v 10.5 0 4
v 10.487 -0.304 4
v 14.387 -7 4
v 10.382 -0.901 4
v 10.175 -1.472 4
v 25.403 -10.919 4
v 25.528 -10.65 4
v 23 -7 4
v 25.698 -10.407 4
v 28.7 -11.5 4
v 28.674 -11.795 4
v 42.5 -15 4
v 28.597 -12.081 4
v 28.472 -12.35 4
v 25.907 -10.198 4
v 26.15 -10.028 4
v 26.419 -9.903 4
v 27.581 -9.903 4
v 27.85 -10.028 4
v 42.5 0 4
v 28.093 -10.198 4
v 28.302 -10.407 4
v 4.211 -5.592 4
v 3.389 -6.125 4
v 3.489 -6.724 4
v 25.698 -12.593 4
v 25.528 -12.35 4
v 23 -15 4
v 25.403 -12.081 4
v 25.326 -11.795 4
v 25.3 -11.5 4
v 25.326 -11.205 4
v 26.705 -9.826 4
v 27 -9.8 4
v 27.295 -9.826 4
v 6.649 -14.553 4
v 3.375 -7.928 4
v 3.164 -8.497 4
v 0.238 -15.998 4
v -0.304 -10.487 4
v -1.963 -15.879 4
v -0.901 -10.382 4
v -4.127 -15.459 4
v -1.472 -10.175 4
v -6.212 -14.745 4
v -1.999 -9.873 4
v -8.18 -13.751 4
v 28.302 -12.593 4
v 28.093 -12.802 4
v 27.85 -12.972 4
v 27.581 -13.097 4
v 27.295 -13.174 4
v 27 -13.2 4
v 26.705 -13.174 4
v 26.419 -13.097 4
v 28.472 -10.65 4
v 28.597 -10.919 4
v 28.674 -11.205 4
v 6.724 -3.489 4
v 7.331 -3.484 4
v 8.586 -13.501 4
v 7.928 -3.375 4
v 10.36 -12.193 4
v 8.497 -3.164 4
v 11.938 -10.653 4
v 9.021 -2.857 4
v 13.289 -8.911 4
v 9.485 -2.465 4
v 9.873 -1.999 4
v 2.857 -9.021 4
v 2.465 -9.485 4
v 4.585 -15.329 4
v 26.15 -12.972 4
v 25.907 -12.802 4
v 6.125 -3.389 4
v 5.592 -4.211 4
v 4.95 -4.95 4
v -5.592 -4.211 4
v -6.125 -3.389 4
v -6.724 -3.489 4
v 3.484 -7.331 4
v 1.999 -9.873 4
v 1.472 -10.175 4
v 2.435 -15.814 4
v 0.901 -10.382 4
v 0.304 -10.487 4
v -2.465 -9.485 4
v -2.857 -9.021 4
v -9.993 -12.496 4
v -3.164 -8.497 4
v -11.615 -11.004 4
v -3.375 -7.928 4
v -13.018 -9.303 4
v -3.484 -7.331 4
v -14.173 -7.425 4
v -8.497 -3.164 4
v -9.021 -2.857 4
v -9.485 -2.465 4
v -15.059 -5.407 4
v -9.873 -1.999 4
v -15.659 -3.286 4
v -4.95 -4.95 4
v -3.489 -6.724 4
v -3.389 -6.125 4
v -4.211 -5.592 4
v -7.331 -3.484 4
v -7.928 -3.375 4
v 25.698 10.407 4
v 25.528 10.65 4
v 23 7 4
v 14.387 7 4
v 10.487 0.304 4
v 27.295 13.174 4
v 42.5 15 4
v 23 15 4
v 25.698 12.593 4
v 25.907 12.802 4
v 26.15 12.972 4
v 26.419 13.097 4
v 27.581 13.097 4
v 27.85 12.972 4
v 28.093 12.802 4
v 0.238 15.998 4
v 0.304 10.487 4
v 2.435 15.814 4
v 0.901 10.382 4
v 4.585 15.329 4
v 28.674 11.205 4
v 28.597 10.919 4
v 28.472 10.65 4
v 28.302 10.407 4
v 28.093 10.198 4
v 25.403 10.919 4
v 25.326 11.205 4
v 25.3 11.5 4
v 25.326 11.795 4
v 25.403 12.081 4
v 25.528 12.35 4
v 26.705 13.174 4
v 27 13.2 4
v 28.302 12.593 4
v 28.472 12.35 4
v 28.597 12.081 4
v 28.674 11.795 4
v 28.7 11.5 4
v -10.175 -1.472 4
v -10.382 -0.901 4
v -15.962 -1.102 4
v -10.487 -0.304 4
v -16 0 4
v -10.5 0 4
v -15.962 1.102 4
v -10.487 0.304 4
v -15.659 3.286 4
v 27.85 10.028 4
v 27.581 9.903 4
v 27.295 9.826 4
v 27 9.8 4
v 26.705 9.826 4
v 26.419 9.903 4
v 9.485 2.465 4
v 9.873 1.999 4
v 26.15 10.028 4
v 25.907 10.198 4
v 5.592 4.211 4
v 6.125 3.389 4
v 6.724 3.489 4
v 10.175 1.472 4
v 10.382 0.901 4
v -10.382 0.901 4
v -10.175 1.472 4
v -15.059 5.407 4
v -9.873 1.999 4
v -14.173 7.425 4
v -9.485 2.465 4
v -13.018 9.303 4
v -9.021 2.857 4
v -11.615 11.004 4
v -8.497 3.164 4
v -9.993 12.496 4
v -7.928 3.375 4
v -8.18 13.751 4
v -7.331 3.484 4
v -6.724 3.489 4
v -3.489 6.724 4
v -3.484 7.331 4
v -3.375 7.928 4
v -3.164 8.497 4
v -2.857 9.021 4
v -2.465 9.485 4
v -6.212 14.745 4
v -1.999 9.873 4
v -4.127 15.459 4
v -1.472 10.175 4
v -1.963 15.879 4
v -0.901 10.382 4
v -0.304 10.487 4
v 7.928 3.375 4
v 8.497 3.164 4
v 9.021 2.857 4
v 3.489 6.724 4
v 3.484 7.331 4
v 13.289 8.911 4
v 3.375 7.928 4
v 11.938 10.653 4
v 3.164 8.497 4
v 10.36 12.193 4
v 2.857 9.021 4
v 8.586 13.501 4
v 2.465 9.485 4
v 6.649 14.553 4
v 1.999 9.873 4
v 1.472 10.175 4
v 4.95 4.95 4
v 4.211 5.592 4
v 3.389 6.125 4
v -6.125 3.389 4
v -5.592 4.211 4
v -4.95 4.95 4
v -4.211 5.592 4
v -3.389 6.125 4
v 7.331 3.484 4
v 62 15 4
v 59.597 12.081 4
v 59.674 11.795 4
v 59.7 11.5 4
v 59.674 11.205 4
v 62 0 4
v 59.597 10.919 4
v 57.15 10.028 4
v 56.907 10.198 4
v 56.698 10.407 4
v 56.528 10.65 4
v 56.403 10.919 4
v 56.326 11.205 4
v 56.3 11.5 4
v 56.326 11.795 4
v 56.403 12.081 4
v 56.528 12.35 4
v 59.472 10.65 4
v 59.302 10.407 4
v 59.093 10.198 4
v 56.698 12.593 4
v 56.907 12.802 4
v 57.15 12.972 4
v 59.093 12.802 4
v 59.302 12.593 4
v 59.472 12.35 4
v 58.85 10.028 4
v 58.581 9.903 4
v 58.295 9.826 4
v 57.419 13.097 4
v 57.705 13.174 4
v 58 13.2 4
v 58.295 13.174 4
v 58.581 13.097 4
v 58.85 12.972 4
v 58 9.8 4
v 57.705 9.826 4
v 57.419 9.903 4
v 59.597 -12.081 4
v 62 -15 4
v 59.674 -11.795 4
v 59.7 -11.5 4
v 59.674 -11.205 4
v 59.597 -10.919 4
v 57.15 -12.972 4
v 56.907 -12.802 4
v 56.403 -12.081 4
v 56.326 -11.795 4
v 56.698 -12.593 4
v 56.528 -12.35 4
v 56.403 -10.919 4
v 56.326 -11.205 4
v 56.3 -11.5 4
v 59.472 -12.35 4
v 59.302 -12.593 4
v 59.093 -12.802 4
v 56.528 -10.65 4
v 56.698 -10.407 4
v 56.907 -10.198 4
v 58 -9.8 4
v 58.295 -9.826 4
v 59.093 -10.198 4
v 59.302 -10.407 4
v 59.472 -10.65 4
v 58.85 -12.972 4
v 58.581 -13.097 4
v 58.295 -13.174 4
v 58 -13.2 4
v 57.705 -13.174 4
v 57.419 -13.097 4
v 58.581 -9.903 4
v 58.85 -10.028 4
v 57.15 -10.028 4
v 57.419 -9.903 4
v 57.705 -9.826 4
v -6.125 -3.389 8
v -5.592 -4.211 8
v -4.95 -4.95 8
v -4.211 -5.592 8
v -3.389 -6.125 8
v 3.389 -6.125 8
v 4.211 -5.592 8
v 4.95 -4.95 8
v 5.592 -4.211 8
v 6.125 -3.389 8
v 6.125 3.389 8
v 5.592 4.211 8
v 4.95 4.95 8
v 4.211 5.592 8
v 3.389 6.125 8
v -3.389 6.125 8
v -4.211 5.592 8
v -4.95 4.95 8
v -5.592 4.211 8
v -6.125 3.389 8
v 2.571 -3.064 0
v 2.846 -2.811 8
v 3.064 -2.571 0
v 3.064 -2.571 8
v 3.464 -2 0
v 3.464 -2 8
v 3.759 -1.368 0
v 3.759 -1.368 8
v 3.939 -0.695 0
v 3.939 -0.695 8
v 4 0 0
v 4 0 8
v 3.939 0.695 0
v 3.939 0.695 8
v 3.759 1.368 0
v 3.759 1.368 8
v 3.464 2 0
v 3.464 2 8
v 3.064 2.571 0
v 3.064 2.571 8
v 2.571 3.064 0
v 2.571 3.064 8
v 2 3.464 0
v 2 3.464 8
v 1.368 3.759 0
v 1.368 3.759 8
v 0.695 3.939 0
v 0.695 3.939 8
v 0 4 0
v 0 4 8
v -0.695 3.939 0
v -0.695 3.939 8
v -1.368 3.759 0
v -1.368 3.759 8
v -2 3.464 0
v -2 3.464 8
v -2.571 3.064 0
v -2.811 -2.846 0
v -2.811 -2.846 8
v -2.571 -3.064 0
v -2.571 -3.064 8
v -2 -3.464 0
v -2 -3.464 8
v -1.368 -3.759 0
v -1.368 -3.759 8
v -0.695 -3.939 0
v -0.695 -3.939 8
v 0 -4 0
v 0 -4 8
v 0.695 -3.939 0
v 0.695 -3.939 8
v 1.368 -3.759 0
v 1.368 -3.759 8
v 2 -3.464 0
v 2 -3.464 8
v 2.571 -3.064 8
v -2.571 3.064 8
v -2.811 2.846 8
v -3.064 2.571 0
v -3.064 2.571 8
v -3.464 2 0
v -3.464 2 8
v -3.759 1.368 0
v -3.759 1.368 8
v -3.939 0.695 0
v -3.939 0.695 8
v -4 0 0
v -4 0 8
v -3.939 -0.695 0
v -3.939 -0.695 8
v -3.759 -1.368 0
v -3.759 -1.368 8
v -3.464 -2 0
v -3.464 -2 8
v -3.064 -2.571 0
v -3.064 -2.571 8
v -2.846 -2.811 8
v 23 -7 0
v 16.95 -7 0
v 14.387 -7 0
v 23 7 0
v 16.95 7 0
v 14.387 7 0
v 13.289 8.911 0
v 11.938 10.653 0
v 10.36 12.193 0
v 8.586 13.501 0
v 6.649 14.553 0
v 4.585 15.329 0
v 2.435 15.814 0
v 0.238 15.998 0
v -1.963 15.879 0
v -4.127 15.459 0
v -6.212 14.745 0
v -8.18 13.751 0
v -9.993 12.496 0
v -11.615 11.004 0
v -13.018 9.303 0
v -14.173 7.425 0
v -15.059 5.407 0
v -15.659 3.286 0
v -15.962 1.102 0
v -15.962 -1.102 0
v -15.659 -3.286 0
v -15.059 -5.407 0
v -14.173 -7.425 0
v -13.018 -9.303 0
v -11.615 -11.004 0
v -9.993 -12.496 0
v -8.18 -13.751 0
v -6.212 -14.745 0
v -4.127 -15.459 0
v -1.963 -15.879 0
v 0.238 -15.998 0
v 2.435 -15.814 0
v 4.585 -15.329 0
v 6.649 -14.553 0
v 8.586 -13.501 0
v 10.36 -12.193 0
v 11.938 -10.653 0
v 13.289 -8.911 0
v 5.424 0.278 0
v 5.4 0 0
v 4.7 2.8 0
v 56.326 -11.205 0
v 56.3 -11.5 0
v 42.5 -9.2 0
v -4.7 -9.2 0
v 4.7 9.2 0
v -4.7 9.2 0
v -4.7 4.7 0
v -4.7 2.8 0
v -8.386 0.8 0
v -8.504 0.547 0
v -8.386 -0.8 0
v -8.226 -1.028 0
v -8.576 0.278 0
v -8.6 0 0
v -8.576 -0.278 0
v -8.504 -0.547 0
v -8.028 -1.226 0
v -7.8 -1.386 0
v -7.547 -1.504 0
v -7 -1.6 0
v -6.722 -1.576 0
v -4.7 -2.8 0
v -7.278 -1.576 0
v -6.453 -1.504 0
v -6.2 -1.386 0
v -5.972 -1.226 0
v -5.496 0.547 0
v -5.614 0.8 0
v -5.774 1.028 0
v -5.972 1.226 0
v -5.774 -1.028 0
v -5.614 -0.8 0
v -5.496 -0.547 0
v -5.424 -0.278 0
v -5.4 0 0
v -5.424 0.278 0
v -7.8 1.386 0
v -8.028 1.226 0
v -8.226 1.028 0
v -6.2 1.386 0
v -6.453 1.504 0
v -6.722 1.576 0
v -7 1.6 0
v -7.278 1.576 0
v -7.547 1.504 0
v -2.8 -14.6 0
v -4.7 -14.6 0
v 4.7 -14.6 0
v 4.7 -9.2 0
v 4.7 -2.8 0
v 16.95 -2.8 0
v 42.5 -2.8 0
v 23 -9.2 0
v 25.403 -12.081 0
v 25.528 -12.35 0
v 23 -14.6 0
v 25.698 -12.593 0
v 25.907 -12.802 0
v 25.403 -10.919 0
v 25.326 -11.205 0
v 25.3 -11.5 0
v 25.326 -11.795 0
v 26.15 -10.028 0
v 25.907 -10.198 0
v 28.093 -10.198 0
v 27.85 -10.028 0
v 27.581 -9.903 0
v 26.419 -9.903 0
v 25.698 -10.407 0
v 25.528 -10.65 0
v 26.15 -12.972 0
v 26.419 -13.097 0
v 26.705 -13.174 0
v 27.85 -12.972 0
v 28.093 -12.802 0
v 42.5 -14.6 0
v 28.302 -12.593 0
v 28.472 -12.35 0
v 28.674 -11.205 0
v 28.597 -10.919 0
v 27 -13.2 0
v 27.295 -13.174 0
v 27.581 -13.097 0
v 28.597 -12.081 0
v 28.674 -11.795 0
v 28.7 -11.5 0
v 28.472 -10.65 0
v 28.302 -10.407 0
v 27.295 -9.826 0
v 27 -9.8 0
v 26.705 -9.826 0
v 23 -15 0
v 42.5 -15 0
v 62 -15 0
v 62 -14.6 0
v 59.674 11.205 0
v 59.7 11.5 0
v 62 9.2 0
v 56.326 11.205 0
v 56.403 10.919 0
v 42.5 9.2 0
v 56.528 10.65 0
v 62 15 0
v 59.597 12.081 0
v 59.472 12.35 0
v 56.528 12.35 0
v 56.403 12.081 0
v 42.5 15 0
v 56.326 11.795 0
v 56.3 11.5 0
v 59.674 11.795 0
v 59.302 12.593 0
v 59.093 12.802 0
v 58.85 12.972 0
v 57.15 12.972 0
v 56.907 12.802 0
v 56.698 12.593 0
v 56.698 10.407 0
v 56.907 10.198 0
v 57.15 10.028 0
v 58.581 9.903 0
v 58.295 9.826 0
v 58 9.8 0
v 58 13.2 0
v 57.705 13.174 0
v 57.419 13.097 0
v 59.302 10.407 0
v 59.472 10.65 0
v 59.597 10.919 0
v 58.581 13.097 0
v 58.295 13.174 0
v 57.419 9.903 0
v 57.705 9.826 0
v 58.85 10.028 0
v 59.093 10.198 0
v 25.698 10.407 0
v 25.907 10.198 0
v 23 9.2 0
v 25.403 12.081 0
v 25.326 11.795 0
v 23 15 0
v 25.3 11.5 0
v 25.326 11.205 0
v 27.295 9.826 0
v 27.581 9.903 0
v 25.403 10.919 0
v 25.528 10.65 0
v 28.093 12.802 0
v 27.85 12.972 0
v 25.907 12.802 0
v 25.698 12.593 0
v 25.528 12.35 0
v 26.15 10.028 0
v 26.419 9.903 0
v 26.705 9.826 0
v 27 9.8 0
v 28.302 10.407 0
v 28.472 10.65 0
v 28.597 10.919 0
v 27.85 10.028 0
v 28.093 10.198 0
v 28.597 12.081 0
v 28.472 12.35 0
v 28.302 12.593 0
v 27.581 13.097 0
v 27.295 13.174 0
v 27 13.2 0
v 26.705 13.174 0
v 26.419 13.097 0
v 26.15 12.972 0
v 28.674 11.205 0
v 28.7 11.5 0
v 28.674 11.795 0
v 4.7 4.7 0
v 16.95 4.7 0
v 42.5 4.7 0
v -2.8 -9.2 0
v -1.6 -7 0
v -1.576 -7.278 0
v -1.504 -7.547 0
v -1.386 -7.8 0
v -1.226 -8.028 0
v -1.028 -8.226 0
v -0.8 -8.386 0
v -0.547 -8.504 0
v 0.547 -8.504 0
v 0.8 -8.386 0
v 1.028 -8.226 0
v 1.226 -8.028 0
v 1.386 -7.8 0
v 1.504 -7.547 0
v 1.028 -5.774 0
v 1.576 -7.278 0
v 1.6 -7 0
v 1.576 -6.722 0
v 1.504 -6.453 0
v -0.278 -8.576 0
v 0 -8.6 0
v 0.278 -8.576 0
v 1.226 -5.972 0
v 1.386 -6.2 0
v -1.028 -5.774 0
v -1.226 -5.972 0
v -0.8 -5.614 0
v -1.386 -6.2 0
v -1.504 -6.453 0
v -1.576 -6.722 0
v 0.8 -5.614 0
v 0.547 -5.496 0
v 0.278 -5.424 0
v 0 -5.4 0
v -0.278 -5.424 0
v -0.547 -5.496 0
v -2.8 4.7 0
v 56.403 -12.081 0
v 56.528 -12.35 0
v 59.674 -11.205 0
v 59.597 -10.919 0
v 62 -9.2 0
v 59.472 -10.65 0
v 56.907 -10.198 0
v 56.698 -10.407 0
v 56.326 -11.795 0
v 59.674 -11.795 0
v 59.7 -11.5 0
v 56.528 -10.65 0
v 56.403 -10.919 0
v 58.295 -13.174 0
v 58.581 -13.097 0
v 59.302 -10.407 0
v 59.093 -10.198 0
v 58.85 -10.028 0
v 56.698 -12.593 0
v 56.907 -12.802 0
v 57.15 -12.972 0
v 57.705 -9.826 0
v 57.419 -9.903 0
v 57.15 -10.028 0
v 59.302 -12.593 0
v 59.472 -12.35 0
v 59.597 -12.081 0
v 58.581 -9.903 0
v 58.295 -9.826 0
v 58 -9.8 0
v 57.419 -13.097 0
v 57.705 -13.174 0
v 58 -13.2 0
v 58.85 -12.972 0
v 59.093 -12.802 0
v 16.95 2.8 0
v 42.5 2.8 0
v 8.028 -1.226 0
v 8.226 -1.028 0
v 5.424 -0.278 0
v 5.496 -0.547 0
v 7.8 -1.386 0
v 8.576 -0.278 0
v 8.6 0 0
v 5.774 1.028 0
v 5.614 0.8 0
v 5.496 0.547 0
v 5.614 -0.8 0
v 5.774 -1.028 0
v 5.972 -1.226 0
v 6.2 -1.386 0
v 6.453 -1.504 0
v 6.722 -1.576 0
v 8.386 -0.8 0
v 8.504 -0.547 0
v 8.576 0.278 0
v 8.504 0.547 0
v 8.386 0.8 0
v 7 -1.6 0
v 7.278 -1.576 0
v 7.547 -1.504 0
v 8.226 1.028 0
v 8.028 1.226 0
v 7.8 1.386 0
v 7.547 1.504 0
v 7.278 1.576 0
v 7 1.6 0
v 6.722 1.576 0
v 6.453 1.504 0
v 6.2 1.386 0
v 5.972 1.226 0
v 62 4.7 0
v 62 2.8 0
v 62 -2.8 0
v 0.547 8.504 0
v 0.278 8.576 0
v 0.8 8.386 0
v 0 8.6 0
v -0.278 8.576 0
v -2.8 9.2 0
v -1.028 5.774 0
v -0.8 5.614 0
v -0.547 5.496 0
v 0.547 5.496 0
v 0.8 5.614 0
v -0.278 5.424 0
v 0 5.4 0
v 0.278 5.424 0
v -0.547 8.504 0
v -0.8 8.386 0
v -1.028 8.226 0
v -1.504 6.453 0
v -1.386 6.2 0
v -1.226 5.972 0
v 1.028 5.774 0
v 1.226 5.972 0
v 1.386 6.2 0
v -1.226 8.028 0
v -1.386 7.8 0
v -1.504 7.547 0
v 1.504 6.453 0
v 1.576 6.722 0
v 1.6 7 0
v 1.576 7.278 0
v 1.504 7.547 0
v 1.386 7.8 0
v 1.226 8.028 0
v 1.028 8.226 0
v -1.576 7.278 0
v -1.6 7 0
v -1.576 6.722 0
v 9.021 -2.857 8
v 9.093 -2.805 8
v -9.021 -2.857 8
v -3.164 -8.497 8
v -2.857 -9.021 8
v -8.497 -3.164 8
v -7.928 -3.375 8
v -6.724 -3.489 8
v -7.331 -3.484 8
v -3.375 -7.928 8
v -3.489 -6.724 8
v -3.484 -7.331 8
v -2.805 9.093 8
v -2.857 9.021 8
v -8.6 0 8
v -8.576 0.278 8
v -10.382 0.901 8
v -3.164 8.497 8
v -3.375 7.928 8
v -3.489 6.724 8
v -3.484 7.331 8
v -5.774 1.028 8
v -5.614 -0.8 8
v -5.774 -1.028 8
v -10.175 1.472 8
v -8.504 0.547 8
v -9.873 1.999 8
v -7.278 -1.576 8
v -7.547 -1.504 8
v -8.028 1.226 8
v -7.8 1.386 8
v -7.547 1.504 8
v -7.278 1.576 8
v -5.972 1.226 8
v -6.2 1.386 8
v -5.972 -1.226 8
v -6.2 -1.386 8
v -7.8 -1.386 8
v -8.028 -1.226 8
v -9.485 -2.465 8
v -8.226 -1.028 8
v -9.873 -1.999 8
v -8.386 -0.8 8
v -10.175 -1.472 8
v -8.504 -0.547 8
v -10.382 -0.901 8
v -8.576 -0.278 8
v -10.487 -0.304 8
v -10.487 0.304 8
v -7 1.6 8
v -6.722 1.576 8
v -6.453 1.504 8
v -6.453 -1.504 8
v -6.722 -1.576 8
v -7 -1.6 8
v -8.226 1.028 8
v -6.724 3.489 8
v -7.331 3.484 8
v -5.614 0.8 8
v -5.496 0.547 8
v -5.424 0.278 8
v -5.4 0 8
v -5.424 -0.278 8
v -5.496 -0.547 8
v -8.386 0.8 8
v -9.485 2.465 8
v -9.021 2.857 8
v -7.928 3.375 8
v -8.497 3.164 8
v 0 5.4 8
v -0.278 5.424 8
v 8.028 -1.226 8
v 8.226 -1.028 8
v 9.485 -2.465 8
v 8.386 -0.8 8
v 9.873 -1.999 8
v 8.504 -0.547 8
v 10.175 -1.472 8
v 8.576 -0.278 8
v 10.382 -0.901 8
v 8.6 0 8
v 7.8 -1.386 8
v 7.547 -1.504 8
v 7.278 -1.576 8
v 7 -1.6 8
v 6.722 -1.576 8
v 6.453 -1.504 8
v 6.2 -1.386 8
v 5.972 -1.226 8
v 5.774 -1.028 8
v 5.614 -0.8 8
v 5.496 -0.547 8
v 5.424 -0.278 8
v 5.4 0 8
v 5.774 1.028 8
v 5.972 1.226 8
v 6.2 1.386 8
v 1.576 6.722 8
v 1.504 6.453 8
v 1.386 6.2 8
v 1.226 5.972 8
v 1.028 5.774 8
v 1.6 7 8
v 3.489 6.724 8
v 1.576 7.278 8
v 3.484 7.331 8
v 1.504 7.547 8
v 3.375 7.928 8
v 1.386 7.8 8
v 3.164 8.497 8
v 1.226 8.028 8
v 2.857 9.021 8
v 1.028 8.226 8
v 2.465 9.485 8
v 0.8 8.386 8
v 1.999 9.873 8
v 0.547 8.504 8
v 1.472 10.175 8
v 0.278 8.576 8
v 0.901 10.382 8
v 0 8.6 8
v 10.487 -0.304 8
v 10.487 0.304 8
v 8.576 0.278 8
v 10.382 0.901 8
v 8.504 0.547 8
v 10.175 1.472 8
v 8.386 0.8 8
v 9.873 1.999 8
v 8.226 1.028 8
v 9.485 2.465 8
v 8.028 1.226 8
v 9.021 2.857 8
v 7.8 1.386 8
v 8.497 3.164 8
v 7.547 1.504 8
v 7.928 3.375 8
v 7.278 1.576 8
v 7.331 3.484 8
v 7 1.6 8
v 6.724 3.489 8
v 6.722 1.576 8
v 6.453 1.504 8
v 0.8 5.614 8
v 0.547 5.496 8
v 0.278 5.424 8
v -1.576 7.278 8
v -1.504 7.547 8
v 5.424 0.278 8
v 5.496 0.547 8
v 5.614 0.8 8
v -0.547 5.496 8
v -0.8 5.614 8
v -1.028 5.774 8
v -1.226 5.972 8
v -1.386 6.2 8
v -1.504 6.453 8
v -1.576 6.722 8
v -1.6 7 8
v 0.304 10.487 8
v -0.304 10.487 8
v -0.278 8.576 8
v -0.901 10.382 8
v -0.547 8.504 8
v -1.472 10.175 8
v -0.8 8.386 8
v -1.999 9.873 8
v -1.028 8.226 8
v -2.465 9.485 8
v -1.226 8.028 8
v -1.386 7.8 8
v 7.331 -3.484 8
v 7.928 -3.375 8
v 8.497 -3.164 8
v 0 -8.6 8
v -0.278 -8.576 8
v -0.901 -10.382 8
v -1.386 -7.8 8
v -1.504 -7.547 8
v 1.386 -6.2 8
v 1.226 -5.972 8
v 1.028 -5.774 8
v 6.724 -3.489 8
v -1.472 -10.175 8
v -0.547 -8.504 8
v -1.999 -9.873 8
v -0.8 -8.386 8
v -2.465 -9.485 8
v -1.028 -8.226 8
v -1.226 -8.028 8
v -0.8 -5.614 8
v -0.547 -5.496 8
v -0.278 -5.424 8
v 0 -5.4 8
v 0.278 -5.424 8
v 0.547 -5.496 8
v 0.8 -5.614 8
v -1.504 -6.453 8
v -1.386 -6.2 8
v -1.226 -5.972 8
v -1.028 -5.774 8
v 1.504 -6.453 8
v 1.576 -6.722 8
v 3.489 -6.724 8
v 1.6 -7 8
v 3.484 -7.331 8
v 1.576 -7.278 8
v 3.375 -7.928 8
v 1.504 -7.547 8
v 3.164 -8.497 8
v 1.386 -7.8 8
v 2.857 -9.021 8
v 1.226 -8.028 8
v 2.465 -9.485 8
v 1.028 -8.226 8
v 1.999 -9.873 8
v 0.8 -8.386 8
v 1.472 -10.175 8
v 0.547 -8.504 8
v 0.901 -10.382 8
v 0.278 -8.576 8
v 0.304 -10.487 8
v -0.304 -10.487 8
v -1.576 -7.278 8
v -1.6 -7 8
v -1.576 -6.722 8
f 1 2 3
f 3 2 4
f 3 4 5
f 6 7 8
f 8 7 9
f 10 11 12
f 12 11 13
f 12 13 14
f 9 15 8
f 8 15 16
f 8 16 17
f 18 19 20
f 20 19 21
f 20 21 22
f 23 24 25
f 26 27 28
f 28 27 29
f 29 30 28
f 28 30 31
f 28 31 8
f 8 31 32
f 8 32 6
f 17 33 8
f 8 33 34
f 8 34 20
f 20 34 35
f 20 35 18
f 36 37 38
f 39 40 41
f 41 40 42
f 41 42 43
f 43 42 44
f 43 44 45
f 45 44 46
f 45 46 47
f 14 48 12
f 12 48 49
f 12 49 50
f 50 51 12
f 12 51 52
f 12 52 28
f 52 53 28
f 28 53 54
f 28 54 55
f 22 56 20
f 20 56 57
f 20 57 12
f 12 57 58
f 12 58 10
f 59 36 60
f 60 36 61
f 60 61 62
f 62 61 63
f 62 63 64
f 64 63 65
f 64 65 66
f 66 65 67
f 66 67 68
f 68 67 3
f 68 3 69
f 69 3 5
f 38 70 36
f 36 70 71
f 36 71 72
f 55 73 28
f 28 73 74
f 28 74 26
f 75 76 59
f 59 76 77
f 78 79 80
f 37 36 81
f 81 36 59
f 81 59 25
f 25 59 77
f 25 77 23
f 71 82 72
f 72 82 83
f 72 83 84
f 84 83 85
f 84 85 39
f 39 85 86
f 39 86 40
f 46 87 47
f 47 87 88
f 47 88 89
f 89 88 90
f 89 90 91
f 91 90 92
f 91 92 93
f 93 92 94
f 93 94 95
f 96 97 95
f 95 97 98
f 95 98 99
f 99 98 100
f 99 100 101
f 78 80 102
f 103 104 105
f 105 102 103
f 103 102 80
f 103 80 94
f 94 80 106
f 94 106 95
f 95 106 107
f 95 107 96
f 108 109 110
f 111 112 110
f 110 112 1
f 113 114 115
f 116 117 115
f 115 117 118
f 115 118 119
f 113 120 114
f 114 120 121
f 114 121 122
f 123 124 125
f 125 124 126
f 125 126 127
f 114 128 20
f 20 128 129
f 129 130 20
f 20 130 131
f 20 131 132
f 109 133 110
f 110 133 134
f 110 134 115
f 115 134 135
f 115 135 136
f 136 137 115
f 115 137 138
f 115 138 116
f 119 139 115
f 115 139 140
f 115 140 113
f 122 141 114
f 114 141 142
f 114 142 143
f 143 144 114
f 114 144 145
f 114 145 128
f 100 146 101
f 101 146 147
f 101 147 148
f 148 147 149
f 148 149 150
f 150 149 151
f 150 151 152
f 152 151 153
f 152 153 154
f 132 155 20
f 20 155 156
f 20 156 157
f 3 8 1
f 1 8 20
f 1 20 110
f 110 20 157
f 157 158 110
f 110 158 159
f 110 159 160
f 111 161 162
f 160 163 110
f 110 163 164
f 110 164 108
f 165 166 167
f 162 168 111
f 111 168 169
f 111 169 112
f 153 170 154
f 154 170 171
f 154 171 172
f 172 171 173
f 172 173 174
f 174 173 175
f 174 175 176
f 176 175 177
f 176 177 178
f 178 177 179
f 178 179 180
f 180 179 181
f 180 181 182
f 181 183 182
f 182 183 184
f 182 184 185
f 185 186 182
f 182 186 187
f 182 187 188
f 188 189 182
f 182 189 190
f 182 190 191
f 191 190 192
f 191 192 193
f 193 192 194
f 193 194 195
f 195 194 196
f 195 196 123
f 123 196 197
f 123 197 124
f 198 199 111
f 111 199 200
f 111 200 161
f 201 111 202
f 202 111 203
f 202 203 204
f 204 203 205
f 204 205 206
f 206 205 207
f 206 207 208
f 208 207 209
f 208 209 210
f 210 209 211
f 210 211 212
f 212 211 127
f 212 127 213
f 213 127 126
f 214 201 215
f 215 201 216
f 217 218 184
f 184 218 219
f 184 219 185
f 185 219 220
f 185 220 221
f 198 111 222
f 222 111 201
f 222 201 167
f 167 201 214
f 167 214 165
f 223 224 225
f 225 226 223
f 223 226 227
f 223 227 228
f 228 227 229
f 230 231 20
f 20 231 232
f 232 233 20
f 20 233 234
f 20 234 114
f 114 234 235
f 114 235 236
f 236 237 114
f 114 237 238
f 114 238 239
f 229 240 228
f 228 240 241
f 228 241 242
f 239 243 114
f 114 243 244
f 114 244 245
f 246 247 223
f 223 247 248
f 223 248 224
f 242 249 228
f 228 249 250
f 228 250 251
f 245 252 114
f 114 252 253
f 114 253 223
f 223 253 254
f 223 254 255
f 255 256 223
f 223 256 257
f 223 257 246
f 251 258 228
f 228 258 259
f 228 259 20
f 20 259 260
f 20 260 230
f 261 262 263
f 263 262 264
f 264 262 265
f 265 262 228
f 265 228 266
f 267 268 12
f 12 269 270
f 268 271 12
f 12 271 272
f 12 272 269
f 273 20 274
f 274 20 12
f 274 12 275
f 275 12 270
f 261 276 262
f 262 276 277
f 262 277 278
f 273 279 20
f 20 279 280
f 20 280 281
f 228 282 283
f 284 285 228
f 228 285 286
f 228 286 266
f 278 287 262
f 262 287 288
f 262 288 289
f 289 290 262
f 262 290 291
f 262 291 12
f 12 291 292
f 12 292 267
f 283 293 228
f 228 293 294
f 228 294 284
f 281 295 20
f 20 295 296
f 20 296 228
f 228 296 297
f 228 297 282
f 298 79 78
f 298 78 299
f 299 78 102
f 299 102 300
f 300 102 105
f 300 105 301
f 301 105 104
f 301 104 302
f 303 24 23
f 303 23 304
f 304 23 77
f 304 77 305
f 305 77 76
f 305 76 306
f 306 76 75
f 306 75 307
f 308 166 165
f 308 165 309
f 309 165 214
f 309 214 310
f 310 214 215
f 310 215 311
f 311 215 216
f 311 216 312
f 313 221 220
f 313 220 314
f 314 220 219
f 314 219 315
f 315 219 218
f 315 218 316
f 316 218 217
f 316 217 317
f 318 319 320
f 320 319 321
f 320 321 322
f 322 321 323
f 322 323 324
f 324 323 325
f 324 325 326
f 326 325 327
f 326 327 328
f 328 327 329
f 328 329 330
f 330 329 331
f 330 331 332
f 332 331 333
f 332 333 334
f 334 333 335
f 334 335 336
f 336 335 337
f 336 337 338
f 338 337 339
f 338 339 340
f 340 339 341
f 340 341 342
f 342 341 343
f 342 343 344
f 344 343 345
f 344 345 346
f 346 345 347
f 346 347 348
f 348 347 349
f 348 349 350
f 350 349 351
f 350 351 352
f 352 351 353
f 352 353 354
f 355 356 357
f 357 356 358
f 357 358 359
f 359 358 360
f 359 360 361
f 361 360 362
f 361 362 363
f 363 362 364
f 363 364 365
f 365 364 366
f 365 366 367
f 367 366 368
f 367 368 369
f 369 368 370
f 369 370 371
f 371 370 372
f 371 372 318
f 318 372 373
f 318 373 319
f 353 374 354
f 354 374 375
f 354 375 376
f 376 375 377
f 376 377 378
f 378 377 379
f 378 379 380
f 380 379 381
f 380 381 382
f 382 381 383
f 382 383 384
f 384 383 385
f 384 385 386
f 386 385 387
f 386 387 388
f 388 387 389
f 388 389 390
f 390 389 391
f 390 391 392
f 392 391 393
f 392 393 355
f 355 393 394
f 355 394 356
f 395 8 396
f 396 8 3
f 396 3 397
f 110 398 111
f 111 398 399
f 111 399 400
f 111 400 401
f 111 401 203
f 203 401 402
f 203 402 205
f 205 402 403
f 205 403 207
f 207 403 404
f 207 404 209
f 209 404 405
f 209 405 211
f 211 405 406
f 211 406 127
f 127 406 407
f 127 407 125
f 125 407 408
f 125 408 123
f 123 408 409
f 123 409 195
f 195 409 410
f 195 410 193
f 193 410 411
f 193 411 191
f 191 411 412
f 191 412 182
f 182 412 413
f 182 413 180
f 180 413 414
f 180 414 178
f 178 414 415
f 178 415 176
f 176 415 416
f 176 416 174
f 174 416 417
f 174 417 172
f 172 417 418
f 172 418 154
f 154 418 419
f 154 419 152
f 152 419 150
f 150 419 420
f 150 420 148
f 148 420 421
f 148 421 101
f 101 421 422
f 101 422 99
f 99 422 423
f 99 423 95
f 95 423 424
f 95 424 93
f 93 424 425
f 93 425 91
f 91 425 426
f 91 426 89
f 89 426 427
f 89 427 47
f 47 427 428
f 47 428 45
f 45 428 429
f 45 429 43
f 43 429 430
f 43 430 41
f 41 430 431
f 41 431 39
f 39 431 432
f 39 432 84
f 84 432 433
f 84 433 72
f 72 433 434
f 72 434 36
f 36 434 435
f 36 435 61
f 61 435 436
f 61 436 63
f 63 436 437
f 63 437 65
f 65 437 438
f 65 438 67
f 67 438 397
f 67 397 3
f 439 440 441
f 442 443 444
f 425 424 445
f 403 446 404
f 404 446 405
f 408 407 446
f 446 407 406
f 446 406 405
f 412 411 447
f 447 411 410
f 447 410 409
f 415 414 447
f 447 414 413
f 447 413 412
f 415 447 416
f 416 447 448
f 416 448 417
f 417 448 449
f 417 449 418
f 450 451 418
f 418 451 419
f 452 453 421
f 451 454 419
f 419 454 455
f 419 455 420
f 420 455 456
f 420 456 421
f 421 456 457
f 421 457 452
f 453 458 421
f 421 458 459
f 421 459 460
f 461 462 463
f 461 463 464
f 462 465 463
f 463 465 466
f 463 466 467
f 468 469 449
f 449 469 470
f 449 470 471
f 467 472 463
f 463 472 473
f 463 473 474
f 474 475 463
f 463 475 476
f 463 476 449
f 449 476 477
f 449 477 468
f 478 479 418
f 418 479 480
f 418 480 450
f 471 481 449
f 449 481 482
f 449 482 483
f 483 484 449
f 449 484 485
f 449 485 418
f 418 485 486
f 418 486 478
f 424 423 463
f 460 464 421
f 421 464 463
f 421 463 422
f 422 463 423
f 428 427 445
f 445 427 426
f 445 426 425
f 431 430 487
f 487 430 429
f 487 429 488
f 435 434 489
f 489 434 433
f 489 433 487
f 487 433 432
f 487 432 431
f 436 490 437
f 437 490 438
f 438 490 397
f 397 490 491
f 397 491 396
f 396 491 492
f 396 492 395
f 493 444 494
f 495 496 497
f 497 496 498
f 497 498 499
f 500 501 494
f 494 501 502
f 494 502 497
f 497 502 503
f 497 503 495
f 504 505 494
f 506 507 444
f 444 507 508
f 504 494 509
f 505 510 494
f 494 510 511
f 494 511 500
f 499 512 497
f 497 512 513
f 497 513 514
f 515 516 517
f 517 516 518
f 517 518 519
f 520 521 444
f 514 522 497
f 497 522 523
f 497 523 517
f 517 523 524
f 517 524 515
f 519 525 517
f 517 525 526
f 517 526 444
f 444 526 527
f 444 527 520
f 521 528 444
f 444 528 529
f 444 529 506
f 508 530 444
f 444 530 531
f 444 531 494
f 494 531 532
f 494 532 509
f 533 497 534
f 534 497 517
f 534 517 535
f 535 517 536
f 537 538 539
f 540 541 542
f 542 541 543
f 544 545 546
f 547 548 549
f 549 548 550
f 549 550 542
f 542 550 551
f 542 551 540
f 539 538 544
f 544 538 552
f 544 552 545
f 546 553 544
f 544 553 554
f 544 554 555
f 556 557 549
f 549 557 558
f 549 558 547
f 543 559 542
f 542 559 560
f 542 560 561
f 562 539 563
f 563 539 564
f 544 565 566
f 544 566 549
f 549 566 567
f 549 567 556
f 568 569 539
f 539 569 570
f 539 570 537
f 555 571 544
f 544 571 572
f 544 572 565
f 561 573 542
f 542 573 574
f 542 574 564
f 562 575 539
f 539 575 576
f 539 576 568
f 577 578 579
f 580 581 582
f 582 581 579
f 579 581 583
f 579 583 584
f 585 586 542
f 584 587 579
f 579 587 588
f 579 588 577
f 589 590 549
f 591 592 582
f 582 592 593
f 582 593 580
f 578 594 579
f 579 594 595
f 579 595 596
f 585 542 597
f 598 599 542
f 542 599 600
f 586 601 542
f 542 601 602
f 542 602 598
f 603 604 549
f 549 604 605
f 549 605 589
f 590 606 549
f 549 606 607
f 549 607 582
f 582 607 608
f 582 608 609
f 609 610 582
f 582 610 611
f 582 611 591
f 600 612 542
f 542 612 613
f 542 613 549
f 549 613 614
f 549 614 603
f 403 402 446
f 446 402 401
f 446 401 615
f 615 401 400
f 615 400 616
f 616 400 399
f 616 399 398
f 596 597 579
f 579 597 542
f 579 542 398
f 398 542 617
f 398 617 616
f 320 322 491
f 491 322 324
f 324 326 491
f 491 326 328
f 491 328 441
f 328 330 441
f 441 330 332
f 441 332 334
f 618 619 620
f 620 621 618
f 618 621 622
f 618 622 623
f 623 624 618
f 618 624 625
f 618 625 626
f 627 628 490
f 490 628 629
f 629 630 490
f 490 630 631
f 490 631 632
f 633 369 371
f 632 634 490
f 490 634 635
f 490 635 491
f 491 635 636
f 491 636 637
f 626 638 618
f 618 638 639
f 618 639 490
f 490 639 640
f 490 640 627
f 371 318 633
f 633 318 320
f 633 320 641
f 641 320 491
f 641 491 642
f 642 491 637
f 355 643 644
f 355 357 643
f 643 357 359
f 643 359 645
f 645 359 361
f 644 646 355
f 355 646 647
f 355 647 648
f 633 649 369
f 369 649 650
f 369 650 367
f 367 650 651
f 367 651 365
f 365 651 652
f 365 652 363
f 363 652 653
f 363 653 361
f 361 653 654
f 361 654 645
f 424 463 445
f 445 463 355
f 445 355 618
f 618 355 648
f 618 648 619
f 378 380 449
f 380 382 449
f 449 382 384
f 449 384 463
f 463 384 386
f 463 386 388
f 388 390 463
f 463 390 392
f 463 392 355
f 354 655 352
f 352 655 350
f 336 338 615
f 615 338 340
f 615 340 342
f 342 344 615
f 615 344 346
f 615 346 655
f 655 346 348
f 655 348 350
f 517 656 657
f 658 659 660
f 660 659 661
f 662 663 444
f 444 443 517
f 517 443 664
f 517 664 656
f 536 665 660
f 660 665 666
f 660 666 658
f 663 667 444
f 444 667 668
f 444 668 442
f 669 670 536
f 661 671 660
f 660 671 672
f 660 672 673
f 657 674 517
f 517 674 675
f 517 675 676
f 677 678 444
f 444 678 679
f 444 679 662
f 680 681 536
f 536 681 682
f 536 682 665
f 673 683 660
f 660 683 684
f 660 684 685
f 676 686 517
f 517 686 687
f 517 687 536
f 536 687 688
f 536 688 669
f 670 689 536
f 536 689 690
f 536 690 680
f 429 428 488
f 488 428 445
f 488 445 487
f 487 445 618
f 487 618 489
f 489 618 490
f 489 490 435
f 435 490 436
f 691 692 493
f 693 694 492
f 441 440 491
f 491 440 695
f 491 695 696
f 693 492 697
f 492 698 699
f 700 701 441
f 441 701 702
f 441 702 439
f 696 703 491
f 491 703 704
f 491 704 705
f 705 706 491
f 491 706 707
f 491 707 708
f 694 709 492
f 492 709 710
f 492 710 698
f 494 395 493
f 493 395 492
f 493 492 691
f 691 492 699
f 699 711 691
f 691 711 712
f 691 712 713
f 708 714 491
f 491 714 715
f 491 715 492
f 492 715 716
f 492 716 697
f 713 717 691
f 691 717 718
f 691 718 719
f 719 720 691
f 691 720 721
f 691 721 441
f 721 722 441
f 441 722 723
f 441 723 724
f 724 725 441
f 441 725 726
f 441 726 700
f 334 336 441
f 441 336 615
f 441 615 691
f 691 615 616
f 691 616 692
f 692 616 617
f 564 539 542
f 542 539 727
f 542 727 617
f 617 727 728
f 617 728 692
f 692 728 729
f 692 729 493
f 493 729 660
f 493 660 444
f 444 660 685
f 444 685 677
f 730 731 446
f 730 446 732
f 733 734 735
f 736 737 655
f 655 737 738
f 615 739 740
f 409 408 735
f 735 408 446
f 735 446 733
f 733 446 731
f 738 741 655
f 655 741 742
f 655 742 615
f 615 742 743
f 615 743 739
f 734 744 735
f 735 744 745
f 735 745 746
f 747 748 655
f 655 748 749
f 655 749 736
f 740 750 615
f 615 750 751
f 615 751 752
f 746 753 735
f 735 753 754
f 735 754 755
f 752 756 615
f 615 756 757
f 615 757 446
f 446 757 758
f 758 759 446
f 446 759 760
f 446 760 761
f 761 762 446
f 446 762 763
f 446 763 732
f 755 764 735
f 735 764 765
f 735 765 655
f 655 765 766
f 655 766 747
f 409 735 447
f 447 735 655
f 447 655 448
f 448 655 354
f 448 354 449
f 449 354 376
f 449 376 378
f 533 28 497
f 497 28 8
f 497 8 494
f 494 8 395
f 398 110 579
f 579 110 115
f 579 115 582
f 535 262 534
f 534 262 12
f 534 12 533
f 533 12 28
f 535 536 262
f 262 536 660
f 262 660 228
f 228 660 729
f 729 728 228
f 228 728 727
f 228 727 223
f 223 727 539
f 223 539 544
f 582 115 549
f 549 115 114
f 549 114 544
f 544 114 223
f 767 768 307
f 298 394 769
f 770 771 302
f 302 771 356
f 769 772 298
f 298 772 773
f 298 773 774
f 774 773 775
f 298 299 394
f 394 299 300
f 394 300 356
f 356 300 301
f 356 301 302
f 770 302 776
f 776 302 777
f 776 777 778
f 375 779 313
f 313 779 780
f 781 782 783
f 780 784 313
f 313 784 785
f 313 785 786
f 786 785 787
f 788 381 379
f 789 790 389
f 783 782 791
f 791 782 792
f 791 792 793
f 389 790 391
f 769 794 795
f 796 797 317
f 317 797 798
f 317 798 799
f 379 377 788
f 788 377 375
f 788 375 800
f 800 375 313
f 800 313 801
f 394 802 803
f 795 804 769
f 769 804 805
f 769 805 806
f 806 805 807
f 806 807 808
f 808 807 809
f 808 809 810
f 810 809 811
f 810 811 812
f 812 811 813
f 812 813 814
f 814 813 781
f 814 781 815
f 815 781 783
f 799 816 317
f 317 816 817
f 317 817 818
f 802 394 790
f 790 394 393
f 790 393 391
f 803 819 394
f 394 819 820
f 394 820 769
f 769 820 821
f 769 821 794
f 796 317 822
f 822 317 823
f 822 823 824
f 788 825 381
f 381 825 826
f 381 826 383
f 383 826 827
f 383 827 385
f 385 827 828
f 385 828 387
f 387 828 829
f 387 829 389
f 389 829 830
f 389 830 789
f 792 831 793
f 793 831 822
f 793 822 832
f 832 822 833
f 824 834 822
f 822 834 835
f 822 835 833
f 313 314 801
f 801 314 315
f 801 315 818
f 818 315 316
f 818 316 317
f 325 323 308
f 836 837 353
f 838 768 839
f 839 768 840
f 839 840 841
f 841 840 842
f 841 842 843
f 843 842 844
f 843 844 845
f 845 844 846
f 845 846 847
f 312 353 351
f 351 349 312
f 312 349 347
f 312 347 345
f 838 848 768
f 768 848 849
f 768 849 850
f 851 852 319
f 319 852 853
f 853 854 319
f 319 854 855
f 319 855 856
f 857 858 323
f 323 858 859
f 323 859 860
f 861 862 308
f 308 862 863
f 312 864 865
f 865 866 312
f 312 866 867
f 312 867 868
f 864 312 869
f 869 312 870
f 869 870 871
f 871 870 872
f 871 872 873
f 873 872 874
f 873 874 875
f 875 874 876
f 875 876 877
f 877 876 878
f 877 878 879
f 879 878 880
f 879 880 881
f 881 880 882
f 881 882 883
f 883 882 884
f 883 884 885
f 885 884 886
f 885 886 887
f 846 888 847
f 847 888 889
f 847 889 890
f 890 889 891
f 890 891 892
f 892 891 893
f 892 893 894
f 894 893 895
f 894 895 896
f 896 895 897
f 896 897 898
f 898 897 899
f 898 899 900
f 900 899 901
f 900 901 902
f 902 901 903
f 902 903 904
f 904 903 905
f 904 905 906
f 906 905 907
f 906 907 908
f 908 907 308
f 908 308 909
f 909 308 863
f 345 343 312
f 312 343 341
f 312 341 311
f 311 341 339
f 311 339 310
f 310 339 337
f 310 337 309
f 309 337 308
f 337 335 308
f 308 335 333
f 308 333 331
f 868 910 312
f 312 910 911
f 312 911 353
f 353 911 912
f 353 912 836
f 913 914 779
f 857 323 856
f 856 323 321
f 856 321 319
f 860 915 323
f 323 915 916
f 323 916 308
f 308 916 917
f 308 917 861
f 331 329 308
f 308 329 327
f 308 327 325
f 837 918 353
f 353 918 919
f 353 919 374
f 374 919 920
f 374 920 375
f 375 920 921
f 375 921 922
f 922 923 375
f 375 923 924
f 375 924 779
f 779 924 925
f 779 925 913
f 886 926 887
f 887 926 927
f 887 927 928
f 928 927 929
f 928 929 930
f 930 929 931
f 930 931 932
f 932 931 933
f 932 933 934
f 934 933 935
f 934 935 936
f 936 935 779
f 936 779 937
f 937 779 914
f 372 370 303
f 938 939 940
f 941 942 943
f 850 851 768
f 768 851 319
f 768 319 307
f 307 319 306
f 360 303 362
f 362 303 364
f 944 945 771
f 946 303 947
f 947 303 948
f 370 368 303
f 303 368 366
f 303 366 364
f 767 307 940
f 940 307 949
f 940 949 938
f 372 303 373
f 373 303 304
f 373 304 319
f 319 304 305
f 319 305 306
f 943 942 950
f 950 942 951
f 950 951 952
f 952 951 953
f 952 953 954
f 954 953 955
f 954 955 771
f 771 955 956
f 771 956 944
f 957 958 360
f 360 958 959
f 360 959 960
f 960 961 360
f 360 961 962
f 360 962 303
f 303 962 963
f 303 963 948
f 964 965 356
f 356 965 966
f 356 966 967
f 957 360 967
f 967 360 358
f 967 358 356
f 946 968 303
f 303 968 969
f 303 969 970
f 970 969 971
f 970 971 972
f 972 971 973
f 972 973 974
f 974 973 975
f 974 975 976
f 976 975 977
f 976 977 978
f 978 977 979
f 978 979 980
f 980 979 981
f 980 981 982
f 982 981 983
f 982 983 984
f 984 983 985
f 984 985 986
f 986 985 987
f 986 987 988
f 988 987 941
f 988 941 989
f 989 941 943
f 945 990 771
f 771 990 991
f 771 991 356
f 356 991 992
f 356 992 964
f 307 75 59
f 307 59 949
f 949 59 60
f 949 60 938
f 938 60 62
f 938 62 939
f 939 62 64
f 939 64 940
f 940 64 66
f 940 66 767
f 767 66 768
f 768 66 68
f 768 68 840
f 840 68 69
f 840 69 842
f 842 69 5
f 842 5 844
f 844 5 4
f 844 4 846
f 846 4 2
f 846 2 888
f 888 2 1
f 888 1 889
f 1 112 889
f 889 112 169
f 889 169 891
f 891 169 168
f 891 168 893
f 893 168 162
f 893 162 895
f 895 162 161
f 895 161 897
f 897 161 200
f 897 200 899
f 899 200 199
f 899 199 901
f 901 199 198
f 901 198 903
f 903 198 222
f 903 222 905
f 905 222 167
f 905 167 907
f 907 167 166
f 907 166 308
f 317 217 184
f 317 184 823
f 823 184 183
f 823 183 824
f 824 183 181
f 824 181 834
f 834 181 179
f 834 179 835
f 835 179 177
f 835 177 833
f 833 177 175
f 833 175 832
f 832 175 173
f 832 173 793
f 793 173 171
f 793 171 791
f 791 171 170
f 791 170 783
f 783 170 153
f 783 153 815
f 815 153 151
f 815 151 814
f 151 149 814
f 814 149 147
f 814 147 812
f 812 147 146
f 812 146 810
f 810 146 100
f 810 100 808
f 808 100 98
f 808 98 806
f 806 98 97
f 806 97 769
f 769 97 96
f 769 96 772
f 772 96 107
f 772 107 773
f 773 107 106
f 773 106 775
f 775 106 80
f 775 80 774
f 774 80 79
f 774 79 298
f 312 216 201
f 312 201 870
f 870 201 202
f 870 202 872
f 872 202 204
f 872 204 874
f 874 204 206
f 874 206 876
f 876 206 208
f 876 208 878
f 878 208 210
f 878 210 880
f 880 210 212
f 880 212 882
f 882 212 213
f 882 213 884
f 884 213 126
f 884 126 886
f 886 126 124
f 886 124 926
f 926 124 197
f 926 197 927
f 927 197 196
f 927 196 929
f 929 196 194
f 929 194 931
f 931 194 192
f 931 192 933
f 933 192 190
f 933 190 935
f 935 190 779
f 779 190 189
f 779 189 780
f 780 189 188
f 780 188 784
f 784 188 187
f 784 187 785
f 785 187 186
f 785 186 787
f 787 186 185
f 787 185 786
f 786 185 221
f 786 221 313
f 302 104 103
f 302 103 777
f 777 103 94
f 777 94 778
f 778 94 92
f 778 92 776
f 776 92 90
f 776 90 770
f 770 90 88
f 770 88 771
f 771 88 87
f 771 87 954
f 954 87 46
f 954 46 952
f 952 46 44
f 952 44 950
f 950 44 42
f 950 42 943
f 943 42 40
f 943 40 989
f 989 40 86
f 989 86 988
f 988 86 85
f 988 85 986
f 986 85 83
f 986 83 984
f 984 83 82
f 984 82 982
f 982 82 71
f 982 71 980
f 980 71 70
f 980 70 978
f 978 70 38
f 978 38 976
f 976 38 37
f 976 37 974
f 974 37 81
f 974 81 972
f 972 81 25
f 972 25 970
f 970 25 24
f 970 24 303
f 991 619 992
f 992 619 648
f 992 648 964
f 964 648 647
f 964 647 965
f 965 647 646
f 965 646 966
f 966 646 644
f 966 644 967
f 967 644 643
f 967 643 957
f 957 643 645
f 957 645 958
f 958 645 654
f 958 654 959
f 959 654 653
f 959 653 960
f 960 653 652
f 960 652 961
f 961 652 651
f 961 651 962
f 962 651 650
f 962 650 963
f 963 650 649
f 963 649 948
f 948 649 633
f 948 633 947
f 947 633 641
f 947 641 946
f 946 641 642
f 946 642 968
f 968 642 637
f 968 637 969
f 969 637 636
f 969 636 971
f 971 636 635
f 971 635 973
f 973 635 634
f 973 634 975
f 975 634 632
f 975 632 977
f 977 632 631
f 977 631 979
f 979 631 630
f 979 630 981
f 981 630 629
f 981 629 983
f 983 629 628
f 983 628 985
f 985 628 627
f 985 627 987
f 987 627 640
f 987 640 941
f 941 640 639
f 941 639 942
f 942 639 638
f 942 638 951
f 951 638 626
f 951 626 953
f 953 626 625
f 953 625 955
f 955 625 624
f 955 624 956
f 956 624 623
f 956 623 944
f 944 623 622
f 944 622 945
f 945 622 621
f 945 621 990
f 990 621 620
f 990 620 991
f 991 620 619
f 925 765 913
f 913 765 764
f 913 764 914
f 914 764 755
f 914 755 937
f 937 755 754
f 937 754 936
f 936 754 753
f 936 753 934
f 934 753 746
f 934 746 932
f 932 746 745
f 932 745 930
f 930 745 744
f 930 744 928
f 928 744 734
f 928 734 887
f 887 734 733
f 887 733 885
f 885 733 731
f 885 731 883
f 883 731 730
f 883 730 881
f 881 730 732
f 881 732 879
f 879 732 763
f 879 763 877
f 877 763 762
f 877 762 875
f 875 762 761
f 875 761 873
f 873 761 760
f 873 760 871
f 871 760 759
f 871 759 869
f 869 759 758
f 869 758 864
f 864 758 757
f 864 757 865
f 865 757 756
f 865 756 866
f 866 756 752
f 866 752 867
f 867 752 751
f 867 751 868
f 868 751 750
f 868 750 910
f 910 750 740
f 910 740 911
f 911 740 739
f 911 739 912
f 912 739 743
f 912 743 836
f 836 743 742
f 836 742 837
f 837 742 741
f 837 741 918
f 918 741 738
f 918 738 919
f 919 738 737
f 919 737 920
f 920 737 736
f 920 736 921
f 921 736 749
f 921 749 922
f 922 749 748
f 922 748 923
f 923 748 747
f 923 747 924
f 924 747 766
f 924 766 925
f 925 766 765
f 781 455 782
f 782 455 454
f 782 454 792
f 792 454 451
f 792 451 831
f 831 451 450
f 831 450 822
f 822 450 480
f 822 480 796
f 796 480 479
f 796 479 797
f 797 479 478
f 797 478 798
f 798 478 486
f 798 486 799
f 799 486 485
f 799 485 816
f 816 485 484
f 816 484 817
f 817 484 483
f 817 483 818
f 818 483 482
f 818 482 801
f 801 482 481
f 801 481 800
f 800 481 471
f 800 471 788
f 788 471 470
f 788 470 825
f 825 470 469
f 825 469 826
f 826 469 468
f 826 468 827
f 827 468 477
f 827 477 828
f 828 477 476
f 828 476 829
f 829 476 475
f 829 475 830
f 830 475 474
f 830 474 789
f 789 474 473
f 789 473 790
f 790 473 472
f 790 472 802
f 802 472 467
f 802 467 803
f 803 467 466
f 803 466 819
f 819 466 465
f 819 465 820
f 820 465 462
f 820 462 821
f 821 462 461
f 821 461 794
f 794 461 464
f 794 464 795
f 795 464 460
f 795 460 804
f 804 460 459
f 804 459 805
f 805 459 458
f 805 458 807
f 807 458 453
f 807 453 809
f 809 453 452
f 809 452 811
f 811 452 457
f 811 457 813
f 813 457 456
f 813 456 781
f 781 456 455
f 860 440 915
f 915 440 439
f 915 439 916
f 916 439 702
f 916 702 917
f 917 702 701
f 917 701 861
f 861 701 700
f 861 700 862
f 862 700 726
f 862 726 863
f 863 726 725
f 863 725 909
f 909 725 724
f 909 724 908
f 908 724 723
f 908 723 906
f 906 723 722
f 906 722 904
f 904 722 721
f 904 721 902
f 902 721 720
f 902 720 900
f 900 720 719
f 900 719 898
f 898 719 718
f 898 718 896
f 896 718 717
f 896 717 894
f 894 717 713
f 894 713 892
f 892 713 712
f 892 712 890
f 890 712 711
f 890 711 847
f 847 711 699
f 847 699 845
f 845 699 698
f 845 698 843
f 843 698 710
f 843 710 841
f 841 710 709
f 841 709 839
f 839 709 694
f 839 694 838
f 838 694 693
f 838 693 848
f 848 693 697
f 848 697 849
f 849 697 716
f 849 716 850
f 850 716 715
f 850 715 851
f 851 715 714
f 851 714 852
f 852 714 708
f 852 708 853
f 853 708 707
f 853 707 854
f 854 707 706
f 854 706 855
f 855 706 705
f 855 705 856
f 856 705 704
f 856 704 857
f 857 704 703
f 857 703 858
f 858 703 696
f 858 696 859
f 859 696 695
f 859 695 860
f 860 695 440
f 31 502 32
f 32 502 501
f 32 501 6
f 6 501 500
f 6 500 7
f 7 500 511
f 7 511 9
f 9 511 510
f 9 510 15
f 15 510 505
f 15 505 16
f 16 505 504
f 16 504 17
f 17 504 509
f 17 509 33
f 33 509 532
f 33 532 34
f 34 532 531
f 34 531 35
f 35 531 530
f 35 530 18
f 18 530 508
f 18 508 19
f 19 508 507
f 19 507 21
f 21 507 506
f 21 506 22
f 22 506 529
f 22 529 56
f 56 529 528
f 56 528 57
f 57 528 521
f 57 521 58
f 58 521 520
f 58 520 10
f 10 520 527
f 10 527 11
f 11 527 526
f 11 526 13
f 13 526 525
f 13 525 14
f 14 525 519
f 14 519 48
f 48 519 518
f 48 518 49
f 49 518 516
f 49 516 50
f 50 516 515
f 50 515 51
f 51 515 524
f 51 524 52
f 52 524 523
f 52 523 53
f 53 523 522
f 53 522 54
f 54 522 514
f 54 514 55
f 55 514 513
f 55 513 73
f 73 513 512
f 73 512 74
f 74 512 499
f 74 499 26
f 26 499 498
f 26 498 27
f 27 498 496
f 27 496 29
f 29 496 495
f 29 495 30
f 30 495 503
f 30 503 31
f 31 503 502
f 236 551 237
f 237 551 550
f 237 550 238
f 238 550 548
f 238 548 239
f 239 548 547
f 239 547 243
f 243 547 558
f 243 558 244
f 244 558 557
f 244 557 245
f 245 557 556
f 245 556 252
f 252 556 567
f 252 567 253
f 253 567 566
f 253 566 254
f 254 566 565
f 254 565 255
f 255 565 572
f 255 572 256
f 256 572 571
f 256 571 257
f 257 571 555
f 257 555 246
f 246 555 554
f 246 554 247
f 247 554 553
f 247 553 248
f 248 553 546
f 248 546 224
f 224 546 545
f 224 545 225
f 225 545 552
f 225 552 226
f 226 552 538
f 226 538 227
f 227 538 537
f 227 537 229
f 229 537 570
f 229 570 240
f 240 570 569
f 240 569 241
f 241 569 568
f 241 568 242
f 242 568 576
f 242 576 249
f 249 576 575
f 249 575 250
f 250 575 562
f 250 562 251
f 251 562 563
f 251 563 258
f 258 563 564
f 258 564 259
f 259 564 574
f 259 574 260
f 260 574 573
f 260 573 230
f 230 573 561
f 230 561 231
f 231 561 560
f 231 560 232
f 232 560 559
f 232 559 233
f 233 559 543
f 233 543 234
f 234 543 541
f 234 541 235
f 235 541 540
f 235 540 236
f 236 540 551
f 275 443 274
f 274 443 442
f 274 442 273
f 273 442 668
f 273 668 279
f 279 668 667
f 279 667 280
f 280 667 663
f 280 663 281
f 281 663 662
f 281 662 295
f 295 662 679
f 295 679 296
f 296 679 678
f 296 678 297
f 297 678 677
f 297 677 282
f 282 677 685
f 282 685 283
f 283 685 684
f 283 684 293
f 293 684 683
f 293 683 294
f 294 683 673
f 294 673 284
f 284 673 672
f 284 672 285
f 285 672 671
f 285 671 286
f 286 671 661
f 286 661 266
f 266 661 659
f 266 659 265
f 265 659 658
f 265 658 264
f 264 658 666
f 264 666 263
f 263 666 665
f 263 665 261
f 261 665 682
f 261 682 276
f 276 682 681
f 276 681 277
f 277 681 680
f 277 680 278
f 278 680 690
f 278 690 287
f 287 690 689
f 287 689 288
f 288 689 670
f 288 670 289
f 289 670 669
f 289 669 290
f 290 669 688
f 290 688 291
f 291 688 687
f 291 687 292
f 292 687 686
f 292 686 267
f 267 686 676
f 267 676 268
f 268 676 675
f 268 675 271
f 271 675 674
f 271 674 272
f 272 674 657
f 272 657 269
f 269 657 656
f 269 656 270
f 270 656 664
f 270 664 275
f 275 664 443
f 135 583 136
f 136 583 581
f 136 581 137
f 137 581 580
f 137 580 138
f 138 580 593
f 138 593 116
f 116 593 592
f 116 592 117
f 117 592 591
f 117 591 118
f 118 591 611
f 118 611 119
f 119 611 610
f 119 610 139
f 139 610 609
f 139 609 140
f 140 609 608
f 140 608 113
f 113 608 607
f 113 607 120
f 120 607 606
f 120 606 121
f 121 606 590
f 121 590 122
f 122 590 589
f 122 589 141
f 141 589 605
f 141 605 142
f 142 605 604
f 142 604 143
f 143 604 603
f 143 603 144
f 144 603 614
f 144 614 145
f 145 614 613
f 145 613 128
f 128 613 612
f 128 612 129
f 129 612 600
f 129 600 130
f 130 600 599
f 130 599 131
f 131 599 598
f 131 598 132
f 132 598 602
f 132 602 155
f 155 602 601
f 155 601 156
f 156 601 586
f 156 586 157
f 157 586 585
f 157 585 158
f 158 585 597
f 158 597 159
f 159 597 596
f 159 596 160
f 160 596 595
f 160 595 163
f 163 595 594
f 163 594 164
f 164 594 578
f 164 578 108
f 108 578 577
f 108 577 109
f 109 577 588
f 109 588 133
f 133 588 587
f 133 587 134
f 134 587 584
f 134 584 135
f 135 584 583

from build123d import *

# Parameters (mm, degrees)
METAL_HORN_FLANGE_PROFILE_R              = 16
METAL_HORN_FLANGE_DEPTH                  = 4
STRAIGHT_FOREARM_WEB_PROFILE_W           = 28
STRAIGHT_FOREARM_WEB_PROFILE_H           = 14
STRAIGHT_FOREARM_WEB_DEPTH               = 4
REPLACEABLE_TOOL_MOUNTING_DECK_PROFILE_W = 39
REPLACEABLE_TOOL_MOUNTING_DECK_PROFILE_H = 30
REPLACEABLE_TOOL_MOUNTING_DECK_DEPTH     = 4
DOWEL_SUPPORT_HUB_START                  = 4
DOWEL_SUPPORT_HUB_PROFILE_R              = 7
DOWEL_SUPPORT_HUB_PROFILE_R_2            = 4
DOWEL_SUPPORT_HUB_DEPTH                  = 4
WASHER_SEATS_CLEAR_DOWEL_SLEEVE_START    = 4
RAISED_WASHER_SEATS_PCD14_R              = 3.5
WASHER_SEATS_CLEAR_DOWEL_SLEEVE_DEPTH    = 4
METAL_HORN_M3_PATTERN_START              = -50
METAL_HORN_M3_PATTERN_PROFILE_R          = 1.6
METAL_HORN_M3_PATTERN_DEPTH              = 115.52906322
ELBOW_SLEEVE_BORE_START                  = -50
ELBOW_SLEEVE_BORE_PROFILE_R              = 4
ELBOW_SLEEVE_BORE_DEPTH                  = 115.52906322
MODULAR_TOOL_FOUR_M3_PATTERN_START       = -50
MODULAR_TOOL_FOUR_M3_PATTERN_PROFILE_R   = 1.7
MODULAR_TOOL_FOUR_M3_PATTERN_DEPTH       = 115.52906322


with BuildPart() as part:
    # Metal_horn_flange_profile → Metal_horn_flange (new body)
    with BuildSketch(Plane.XY):
        Circle(METAL_HORN_FLANGE_PROFILE_R)
    extrude(amount=METAL_HORN_FLANGE_DEPTH)

    # Straight_forearm_web_profile → Straight_forearm_web (add)
    with BuildSketch(Plane.XY):
        with Locations((14, 0)):
            Rectangle(STRAIGHT_FOREARM_WEB_PROFILE_W, STRAIGHT_FOREARM_WEB_PROFILE_H)
    extrude(amount=STRAIGHT_FOREARM_WEB_DEPTH)

    # Replaceable_tool_mounting_deck_profile → Replaceable_tool_mounting_deck (add)
    with BuildSketch(Plane.XY):
        with Locations((42.5, 0)):
            Rectangle(REPLACEABLE_TOOL_MOUNTING_DECK_PROFILE_W, REPLACEABLE_TOOL_MOUNTING_DECK_PROFILE_H)
    extrude(amount=REPLACEABLE_TOOL_MOUNTING_DECK_DEPTH)

    # Dowel_support_hub_profile → Dowel_support_hub (add)
    with BuildSketch(Plane.XY.offset(DOWEL_SUPPORT_HUB_START)):
        Circle(DOWEL_SUPPORT_HUB_PROFILE_R)
        Circle(DOWEL_SUPPORT_HUB_PROFILE_R_2, mode=Mode.SUBTRACT)
    extrude(amount=DOWEL_SUPPORT_HUB_DEPTH)

    # Raised_washer_seats_PCD14 → Washer_seats_clear_dowel_sleeve (add)
    with BuildSketch(Plane.XY.offset(WASHER_SEATS_CLEAR_DOWEL_SLEEVE_START)):
        with Locations((7, 0)):
            Circle(RAISED_WASHER_SEATS_PCD14_R)
        with Locations((-7, 0)):
            Circle(RAISED_WASHER_SEATS_PCD14_R)
        with Locations((0, 7)):
            Circle(RAISED_WASHER_SEATS_PCD14_R)
        with Locations((0, -7)):
            Circle(RAISED_WASHER_SEATS_PCD14_R)
    extrude(amount=WASHER_SEATS_CLEAR_DOWEL_SLEEVE_DEPTH)

    # Metal_horn_M3_pattern_profile → Metal_horn_M3_pattern (cut, through all)
    with BuildSketch(Plane.XY.offset(METAL_HORN_M3_PATTERN_START)):
        with Locations(Location((7, 0, 0), (0, 0, 180))):
            Circle(METAL_HORN_M3_PATTERN_PROFILE_R)
        with Locations(Location((-7, 0, 0), (0, 0, 180))):
            Circle(METAL_HORN_M3_PATTERN_PROFILE_R)
        with Locations(Location((0, 7, 0), (0, 0, 180))):
            Circle(METAL_HORN_M3_PATTERN_PROFILE_R)
        with Locations(Location((0, -7, 0), (0, 0, 180))):
            Circle(METAL_HORN_M3_PATTERN_PROFILE_R)
    extrude(amount=METAL_HORN_M3_PATTERN_DEPTH, mode=Mode.SUBTRACT)

    # Elbow_sleeve_bore_profile → Elbow_sleeve_bore (cut, through all)
    with BuildSketch(Plane.XY.offset(ELBOW_SLEEVE_BORE_START)):
        Circle(ELBOW_SLEEVE_BORE_PROFILE_R)
    extrude(amount=ELBOW_SLEEVE_BORE_DEPTH, mode=Mode.SUBTRACT)

    # Modular_tool_four_M3_pattern_profile → Modular_tool_four_M3_pattern (cut, through all)
    with BuildSketch(Plane.XY.offset(MODULAR_TOOL_FOUR_M3_PATTERN_START)):
        with Locations(Location((27, -11.5, 0), (0, 0, 180))):
            Circle(MODULAR_TOOL_FOUR_M3_PATTERN_PROFILE_R)
        with Locations(Location((27, 11.5, 0), (0, 0, 180))):
            Circle(MODULAR_TOOL_FOUR_M3_PATTERN_PROFILE_R)
        with Locations(Location((58, -11.5, 0), (0, 0, 180))):
            Circle(MODULAR_TOOL_FOUR_M3_PATTERN_PROFILE_R)
        with Locations(Location((58, 11.5, 0), (0, 0, 180))):
            Circle(MODULAR_TOOL_FOUR_M3_PATTERN_PROFILE_R)
    extrude(amount=MODULAR_TOOL_FOUR_M3_PATTERN_DEPTH, mode=Mode.SUBTRACT)


solid = part.part
